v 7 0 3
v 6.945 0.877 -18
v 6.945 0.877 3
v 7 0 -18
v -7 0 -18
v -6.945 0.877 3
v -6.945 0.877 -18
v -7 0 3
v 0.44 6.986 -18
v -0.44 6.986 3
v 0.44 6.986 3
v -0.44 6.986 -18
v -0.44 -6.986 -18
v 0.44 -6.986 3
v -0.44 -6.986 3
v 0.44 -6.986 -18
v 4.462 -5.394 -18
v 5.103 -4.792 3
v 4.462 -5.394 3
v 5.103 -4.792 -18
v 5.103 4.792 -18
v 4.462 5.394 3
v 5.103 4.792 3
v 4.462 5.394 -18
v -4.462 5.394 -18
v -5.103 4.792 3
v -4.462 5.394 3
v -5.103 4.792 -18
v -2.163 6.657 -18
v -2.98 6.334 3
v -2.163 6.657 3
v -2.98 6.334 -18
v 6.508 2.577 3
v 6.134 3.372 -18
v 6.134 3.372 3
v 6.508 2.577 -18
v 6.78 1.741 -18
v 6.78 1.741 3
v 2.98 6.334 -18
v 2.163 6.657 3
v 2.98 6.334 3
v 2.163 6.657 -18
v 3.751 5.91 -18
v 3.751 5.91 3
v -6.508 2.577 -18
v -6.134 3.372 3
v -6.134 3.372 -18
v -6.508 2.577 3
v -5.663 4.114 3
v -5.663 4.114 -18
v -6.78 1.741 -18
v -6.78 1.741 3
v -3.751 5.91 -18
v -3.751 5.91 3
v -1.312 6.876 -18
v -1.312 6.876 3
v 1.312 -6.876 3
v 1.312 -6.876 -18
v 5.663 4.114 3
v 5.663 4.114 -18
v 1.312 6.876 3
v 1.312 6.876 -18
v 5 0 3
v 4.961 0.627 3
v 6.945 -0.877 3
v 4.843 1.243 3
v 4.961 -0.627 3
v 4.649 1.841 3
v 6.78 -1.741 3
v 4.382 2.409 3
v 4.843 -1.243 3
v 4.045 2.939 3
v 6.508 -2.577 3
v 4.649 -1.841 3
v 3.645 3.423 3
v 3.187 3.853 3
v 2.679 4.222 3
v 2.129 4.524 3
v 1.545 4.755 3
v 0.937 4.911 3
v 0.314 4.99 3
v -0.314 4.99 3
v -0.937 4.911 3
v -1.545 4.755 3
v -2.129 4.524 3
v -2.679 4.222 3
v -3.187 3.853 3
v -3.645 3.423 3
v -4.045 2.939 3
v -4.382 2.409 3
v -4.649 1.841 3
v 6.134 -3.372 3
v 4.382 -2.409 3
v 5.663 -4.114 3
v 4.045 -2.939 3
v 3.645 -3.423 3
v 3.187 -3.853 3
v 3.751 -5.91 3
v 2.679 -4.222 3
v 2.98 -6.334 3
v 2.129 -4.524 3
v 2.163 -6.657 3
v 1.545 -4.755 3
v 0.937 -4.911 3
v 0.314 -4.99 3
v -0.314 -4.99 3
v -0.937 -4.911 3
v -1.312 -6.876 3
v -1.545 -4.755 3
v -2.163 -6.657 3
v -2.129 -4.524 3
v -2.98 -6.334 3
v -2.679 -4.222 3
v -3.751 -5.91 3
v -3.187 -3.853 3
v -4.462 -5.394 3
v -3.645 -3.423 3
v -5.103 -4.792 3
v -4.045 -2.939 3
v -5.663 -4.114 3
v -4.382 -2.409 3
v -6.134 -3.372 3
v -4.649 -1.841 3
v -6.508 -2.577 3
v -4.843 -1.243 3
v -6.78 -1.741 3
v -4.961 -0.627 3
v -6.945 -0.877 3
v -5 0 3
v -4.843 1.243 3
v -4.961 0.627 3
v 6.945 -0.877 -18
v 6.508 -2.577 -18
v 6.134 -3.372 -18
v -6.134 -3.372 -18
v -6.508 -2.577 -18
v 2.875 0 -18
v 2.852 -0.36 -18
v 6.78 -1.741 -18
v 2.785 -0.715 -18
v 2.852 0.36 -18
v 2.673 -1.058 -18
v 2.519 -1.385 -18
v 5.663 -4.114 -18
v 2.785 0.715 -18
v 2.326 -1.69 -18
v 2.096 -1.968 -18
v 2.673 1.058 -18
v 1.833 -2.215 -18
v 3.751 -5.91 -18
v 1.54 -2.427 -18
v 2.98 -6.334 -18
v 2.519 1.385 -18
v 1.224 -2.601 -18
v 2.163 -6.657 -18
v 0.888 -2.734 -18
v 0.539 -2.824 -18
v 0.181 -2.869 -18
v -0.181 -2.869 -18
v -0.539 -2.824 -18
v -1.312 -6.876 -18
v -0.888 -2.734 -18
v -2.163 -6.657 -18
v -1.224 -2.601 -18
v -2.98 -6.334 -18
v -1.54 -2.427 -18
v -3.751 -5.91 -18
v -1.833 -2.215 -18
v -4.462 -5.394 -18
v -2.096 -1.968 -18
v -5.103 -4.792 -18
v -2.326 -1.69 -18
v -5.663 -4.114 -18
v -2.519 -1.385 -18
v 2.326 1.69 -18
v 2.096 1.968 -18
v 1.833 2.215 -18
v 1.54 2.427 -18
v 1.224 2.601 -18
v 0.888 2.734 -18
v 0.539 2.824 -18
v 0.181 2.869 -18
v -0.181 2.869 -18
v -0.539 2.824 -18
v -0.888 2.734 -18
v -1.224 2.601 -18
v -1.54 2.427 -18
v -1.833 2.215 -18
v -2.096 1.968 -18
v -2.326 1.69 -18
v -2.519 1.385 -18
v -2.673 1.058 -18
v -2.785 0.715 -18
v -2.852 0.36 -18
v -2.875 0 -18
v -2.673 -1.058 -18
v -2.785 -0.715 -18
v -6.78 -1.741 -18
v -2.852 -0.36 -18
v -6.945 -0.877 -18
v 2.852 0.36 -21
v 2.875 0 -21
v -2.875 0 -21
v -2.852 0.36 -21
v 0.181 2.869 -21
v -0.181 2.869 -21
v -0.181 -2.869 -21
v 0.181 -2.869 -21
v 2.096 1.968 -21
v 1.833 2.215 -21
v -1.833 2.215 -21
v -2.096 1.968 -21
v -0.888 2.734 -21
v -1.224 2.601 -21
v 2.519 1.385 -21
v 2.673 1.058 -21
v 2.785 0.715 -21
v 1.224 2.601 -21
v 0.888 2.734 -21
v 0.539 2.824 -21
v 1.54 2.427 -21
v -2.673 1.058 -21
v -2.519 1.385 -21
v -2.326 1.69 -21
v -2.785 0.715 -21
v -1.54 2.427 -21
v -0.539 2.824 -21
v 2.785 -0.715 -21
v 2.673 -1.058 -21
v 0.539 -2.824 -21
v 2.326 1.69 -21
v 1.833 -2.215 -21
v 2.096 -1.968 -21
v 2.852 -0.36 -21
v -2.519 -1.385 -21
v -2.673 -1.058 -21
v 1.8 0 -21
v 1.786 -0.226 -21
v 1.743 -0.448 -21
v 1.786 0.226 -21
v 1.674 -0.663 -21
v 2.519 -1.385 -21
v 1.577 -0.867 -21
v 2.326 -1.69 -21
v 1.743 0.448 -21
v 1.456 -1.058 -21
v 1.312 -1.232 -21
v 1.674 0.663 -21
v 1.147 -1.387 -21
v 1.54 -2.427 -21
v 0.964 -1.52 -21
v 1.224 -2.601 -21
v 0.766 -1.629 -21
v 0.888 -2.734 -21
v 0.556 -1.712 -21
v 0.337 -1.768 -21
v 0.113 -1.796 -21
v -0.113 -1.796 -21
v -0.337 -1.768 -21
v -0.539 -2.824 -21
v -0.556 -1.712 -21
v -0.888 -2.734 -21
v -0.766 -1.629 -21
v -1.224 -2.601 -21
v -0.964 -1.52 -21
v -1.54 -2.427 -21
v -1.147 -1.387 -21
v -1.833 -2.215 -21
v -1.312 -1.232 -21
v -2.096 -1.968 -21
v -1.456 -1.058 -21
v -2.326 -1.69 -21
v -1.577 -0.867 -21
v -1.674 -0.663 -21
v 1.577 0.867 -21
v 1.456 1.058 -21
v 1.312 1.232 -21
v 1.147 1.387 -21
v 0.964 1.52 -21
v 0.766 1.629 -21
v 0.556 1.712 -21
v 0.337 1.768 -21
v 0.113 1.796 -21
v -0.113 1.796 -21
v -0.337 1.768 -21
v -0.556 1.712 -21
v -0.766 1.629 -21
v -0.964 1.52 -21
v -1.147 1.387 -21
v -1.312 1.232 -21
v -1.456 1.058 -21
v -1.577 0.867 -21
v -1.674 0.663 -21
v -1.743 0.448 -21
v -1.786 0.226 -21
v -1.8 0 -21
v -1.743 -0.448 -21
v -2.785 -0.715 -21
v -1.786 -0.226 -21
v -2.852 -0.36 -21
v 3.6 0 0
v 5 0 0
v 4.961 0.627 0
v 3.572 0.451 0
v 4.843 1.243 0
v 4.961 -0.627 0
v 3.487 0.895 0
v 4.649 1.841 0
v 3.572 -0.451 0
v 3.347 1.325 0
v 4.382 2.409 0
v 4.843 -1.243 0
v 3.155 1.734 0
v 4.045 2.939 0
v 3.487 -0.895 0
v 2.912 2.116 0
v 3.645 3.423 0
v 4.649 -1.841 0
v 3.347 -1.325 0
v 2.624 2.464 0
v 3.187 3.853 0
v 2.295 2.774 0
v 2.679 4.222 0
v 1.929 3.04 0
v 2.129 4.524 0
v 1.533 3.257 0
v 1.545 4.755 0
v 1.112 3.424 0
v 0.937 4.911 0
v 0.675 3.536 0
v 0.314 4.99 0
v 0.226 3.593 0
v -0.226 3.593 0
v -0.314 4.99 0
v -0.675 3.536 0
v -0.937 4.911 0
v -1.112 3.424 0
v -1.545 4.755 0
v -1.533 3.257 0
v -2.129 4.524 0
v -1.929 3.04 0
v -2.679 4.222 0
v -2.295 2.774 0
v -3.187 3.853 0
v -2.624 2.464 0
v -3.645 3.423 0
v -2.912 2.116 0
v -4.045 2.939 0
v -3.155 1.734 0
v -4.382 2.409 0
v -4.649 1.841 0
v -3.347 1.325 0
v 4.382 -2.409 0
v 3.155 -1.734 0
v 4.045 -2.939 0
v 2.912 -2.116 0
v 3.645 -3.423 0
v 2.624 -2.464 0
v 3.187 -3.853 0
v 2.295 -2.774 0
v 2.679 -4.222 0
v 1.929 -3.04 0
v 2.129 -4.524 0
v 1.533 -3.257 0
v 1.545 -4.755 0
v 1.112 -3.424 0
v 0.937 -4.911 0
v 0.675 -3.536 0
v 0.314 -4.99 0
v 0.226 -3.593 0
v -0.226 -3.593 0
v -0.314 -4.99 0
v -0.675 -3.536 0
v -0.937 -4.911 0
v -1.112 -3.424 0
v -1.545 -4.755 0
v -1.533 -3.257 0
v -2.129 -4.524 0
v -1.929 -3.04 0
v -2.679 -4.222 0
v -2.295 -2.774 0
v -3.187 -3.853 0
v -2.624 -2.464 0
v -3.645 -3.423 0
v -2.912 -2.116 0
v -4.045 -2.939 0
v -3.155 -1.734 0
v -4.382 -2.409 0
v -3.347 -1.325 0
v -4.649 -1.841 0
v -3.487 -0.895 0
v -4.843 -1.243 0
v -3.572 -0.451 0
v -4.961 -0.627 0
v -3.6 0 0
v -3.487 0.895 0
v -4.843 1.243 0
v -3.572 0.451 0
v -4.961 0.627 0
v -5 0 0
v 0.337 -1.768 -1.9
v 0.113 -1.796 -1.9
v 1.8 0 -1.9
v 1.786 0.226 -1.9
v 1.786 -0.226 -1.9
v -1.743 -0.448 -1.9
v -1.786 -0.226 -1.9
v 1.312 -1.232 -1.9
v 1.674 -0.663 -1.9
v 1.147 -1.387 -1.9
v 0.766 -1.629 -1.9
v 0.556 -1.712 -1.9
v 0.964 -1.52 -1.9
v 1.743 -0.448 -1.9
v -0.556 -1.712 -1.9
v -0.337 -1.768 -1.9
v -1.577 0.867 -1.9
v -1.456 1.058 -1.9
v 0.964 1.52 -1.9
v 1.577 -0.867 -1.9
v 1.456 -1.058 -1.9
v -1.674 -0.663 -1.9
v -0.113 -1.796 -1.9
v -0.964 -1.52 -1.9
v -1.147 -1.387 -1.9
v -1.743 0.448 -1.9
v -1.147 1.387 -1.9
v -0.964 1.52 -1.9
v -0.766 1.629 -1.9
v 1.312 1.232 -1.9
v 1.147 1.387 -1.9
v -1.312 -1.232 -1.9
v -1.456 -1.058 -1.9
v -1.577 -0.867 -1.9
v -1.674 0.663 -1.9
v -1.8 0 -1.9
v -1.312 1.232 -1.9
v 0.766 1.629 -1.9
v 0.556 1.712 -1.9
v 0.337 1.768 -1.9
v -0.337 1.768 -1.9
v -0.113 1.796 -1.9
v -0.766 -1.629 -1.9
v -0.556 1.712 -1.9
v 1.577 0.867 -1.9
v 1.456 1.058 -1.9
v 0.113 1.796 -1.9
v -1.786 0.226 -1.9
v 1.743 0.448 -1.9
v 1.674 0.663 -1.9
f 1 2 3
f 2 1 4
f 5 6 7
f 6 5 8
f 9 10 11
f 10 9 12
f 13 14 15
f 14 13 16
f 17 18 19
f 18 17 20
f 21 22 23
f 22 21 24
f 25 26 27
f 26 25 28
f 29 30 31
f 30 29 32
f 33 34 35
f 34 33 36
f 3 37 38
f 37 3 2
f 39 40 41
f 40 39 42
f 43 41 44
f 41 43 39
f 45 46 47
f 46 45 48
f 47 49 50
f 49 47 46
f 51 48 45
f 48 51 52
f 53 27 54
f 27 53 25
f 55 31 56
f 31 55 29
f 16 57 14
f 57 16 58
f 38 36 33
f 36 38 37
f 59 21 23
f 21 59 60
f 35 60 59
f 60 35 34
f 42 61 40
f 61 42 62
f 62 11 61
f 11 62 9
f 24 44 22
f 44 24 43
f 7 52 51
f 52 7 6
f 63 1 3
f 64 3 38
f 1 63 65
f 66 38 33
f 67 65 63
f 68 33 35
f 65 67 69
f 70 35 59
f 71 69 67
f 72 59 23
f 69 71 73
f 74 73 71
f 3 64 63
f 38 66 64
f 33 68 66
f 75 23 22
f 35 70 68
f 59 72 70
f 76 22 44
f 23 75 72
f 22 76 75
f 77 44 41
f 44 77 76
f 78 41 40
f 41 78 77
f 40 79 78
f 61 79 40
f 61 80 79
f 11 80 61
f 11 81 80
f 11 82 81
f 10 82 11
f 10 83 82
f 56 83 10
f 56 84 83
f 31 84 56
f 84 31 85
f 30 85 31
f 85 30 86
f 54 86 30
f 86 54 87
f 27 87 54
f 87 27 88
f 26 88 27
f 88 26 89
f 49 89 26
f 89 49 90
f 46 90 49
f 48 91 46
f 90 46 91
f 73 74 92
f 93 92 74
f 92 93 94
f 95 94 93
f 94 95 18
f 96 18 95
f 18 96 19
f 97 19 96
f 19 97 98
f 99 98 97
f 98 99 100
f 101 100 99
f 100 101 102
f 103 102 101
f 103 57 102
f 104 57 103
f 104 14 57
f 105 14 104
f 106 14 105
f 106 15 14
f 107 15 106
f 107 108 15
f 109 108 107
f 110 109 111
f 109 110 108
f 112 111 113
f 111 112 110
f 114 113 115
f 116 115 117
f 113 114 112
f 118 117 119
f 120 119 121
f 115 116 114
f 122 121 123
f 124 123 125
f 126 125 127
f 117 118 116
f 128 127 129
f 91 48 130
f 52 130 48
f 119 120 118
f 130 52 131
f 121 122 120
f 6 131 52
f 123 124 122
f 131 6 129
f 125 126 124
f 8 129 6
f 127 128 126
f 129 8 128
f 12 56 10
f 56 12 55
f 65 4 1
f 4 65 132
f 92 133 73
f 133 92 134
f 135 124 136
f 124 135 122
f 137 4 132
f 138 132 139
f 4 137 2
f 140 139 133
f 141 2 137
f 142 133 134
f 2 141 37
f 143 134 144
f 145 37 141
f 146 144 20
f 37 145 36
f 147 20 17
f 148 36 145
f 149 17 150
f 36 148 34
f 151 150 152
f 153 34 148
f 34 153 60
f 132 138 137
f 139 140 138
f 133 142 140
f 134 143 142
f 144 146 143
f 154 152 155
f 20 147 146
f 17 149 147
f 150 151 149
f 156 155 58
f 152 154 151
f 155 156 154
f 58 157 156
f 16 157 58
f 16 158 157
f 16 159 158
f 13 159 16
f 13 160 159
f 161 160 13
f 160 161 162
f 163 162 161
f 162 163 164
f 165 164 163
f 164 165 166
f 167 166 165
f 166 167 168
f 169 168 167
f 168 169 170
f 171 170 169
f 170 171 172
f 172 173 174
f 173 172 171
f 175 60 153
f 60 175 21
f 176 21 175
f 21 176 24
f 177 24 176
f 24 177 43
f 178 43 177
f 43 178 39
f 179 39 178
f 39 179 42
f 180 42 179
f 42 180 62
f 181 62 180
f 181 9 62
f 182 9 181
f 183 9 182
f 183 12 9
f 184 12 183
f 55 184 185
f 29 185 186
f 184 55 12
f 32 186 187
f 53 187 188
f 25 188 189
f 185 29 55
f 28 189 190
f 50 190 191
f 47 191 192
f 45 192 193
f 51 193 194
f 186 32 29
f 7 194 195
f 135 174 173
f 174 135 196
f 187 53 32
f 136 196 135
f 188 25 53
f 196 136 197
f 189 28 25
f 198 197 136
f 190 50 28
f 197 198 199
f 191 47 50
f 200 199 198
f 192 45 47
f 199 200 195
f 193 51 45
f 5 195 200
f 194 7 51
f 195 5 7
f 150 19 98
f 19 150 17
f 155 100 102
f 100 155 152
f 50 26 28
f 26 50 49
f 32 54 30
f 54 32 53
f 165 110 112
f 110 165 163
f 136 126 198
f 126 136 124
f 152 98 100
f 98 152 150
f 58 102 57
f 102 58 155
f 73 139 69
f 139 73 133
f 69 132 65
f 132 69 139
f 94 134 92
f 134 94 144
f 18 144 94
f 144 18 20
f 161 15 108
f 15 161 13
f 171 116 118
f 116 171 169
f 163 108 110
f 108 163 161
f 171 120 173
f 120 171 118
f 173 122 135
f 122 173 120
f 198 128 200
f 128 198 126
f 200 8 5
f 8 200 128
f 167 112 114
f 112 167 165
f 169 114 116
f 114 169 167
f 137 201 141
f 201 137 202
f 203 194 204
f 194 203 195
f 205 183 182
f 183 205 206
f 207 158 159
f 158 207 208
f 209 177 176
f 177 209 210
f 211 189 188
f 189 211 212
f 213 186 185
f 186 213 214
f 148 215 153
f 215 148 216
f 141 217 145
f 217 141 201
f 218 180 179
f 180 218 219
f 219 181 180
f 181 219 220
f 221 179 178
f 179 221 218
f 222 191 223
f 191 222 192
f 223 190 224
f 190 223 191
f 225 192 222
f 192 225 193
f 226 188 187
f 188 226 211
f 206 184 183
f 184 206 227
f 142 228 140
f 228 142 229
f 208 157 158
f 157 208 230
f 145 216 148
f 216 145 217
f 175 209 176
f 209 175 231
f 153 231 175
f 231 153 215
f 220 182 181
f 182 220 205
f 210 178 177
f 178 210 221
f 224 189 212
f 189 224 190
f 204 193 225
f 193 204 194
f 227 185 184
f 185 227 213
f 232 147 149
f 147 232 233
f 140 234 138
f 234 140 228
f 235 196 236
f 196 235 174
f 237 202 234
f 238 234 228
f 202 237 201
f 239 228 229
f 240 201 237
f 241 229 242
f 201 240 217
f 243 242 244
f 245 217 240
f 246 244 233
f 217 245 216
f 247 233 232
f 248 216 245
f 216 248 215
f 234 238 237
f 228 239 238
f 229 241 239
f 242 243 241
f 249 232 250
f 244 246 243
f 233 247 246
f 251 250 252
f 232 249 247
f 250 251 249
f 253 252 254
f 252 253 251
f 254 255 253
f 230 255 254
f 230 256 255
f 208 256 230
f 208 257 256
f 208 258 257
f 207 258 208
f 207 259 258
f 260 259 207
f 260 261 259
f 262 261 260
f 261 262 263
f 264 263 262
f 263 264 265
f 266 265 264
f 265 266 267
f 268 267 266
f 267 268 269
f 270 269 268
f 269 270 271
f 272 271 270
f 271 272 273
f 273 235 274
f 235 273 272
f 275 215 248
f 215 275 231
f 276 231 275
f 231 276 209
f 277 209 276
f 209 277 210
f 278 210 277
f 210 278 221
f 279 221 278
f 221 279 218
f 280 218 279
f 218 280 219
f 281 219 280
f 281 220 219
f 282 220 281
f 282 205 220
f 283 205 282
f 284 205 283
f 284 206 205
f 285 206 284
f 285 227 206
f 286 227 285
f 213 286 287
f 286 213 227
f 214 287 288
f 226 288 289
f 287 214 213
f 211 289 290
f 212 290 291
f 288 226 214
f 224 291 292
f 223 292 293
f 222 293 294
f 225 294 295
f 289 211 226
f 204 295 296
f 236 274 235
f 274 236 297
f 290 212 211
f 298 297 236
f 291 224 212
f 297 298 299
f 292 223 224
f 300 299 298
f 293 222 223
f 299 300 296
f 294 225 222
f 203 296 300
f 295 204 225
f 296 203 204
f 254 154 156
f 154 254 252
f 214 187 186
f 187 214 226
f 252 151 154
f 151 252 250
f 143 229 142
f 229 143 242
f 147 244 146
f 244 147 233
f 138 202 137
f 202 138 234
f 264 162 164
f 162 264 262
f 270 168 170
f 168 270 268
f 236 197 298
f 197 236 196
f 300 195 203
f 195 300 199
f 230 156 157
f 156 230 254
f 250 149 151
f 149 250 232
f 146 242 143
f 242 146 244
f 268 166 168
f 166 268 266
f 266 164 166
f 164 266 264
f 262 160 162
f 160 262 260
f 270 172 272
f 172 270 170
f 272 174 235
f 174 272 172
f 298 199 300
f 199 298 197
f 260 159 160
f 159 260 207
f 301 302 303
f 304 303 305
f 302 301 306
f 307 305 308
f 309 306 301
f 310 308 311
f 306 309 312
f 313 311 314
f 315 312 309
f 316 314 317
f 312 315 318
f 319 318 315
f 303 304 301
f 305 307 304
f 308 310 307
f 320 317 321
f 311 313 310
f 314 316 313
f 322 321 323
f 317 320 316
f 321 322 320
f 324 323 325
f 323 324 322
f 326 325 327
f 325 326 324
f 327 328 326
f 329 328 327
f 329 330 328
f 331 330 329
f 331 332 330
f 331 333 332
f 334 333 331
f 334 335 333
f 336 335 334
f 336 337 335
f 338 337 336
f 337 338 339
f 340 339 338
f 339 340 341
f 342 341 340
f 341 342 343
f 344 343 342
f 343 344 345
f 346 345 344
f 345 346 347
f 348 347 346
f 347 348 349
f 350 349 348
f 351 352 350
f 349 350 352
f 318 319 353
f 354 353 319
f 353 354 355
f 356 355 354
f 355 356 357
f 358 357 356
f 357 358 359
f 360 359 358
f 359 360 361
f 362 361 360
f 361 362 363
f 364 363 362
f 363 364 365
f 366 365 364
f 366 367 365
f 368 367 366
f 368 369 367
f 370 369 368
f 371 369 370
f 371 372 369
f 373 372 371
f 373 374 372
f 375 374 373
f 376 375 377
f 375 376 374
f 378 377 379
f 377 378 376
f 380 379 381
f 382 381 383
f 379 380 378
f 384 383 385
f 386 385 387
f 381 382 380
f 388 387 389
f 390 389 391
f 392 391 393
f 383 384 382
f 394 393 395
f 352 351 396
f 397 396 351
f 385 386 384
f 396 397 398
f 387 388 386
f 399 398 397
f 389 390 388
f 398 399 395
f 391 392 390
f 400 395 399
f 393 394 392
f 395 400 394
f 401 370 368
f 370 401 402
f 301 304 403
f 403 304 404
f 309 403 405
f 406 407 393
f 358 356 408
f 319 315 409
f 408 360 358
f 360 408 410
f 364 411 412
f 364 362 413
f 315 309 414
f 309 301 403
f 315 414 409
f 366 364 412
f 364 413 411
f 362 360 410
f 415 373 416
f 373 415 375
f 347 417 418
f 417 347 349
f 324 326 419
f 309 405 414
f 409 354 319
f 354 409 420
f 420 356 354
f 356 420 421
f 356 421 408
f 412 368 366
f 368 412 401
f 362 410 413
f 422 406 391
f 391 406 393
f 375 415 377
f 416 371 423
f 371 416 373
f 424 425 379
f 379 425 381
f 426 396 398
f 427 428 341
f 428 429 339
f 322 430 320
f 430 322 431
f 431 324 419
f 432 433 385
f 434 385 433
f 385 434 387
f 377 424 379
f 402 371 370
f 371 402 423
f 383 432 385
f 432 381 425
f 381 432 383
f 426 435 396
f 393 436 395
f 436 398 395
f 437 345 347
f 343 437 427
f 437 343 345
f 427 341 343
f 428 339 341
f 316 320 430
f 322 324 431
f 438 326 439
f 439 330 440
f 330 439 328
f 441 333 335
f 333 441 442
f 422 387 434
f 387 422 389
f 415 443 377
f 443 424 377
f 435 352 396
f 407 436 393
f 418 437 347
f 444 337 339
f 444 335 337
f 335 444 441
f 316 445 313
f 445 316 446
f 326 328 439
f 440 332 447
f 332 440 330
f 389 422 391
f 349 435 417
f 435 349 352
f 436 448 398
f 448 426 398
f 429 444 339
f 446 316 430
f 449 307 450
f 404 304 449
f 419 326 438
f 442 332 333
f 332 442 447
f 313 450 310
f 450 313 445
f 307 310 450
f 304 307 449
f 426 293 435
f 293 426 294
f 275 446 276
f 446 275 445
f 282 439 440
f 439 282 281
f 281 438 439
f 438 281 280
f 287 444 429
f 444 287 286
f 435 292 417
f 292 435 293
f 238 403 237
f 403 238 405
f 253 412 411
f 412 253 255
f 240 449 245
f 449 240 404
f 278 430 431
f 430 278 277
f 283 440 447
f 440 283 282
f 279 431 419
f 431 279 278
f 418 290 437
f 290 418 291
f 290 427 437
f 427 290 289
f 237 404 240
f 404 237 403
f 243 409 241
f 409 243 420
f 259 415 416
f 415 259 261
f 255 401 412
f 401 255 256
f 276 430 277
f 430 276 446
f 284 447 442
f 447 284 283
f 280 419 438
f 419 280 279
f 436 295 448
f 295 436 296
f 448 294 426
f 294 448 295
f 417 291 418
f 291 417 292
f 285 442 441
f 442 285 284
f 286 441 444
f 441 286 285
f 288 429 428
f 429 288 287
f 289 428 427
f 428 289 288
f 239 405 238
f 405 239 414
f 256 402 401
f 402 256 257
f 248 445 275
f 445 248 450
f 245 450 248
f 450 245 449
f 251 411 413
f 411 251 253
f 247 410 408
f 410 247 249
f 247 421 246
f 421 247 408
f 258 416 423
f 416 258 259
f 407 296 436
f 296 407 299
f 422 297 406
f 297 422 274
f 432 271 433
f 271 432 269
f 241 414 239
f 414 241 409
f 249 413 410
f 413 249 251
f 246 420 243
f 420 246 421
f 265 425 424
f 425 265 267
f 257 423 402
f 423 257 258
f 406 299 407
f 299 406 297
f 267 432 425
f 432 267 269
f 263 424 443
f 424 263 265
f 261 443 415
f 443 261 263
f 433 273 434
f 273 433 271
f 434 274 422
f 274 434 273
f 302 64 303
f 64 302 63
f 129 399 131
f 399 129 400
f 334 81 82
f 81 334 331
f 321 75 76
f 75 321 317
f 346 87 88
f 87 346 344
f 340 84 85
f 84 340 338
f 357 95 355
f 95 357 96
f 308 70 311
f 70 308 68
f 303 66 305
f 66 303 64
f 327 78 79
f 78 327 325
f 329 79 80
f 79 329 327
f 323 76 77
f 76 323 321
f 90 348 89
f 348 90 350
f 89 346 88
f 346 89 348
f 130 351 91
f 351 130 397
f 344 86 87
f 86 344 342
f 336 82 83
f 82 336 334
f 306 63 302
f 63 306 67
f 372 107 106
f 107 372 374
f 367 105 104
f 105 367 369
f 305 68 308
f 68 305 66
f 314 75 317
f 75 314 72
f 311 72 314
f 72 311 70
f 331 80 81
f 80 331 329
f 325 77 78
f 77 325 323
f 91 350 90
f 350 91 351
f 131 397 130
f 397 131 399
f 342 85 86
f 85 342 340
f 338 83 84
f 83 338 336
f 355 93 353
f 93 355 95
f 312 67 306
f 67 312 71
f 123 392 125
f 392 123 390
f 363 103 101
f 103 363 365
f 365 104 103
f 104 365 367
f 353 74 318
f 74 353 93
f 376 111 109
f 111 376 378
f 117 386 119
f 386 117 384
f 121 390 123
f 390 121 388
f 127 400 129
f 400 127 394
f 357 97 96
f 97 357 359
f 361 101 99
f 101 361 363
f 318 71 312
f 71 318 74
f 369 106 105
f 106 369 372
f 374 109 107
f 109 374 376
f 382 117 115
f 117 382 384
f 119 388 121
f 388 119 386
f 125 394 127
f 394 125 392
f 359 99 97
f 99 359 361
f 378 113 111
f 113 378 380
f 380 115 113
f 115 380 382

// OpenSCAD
$fn = 50;

difference() {
	union() {
		translate(v = [0, 0, -18.0]) {
			cylinder(h = 21, r = 7.0);
		}
		#translate(v = [0, 0, -21.0]) {
			cylinder(h = 21, r = 2.875);
		}
	}
	union() {
		translate(v = [0, 0, 0]) {
			rotate(a = [0, 0, 0]) {
				difference() {
					union() {
						translate(v = [0, 0, -21.0]) {
							cylinder(h = 21, r = 1.5);
						}
						translate(v = [0, 0, -1.9]) {
							cylinder(h = 1.9, r1 = 1.8, r2 = 3.6);
						}
						translate(v = [0, 0, -21.0]) {
							cylinder(h = 21, r = 1.8);
						}
						translate(v = [0, 0, -21.0]) {
							cylinder(h = 21, r = 1.5);
						}
					}
					union();
				}
			}
		}
		#cylinder(h = 3, r = 5.0);
	}
}
